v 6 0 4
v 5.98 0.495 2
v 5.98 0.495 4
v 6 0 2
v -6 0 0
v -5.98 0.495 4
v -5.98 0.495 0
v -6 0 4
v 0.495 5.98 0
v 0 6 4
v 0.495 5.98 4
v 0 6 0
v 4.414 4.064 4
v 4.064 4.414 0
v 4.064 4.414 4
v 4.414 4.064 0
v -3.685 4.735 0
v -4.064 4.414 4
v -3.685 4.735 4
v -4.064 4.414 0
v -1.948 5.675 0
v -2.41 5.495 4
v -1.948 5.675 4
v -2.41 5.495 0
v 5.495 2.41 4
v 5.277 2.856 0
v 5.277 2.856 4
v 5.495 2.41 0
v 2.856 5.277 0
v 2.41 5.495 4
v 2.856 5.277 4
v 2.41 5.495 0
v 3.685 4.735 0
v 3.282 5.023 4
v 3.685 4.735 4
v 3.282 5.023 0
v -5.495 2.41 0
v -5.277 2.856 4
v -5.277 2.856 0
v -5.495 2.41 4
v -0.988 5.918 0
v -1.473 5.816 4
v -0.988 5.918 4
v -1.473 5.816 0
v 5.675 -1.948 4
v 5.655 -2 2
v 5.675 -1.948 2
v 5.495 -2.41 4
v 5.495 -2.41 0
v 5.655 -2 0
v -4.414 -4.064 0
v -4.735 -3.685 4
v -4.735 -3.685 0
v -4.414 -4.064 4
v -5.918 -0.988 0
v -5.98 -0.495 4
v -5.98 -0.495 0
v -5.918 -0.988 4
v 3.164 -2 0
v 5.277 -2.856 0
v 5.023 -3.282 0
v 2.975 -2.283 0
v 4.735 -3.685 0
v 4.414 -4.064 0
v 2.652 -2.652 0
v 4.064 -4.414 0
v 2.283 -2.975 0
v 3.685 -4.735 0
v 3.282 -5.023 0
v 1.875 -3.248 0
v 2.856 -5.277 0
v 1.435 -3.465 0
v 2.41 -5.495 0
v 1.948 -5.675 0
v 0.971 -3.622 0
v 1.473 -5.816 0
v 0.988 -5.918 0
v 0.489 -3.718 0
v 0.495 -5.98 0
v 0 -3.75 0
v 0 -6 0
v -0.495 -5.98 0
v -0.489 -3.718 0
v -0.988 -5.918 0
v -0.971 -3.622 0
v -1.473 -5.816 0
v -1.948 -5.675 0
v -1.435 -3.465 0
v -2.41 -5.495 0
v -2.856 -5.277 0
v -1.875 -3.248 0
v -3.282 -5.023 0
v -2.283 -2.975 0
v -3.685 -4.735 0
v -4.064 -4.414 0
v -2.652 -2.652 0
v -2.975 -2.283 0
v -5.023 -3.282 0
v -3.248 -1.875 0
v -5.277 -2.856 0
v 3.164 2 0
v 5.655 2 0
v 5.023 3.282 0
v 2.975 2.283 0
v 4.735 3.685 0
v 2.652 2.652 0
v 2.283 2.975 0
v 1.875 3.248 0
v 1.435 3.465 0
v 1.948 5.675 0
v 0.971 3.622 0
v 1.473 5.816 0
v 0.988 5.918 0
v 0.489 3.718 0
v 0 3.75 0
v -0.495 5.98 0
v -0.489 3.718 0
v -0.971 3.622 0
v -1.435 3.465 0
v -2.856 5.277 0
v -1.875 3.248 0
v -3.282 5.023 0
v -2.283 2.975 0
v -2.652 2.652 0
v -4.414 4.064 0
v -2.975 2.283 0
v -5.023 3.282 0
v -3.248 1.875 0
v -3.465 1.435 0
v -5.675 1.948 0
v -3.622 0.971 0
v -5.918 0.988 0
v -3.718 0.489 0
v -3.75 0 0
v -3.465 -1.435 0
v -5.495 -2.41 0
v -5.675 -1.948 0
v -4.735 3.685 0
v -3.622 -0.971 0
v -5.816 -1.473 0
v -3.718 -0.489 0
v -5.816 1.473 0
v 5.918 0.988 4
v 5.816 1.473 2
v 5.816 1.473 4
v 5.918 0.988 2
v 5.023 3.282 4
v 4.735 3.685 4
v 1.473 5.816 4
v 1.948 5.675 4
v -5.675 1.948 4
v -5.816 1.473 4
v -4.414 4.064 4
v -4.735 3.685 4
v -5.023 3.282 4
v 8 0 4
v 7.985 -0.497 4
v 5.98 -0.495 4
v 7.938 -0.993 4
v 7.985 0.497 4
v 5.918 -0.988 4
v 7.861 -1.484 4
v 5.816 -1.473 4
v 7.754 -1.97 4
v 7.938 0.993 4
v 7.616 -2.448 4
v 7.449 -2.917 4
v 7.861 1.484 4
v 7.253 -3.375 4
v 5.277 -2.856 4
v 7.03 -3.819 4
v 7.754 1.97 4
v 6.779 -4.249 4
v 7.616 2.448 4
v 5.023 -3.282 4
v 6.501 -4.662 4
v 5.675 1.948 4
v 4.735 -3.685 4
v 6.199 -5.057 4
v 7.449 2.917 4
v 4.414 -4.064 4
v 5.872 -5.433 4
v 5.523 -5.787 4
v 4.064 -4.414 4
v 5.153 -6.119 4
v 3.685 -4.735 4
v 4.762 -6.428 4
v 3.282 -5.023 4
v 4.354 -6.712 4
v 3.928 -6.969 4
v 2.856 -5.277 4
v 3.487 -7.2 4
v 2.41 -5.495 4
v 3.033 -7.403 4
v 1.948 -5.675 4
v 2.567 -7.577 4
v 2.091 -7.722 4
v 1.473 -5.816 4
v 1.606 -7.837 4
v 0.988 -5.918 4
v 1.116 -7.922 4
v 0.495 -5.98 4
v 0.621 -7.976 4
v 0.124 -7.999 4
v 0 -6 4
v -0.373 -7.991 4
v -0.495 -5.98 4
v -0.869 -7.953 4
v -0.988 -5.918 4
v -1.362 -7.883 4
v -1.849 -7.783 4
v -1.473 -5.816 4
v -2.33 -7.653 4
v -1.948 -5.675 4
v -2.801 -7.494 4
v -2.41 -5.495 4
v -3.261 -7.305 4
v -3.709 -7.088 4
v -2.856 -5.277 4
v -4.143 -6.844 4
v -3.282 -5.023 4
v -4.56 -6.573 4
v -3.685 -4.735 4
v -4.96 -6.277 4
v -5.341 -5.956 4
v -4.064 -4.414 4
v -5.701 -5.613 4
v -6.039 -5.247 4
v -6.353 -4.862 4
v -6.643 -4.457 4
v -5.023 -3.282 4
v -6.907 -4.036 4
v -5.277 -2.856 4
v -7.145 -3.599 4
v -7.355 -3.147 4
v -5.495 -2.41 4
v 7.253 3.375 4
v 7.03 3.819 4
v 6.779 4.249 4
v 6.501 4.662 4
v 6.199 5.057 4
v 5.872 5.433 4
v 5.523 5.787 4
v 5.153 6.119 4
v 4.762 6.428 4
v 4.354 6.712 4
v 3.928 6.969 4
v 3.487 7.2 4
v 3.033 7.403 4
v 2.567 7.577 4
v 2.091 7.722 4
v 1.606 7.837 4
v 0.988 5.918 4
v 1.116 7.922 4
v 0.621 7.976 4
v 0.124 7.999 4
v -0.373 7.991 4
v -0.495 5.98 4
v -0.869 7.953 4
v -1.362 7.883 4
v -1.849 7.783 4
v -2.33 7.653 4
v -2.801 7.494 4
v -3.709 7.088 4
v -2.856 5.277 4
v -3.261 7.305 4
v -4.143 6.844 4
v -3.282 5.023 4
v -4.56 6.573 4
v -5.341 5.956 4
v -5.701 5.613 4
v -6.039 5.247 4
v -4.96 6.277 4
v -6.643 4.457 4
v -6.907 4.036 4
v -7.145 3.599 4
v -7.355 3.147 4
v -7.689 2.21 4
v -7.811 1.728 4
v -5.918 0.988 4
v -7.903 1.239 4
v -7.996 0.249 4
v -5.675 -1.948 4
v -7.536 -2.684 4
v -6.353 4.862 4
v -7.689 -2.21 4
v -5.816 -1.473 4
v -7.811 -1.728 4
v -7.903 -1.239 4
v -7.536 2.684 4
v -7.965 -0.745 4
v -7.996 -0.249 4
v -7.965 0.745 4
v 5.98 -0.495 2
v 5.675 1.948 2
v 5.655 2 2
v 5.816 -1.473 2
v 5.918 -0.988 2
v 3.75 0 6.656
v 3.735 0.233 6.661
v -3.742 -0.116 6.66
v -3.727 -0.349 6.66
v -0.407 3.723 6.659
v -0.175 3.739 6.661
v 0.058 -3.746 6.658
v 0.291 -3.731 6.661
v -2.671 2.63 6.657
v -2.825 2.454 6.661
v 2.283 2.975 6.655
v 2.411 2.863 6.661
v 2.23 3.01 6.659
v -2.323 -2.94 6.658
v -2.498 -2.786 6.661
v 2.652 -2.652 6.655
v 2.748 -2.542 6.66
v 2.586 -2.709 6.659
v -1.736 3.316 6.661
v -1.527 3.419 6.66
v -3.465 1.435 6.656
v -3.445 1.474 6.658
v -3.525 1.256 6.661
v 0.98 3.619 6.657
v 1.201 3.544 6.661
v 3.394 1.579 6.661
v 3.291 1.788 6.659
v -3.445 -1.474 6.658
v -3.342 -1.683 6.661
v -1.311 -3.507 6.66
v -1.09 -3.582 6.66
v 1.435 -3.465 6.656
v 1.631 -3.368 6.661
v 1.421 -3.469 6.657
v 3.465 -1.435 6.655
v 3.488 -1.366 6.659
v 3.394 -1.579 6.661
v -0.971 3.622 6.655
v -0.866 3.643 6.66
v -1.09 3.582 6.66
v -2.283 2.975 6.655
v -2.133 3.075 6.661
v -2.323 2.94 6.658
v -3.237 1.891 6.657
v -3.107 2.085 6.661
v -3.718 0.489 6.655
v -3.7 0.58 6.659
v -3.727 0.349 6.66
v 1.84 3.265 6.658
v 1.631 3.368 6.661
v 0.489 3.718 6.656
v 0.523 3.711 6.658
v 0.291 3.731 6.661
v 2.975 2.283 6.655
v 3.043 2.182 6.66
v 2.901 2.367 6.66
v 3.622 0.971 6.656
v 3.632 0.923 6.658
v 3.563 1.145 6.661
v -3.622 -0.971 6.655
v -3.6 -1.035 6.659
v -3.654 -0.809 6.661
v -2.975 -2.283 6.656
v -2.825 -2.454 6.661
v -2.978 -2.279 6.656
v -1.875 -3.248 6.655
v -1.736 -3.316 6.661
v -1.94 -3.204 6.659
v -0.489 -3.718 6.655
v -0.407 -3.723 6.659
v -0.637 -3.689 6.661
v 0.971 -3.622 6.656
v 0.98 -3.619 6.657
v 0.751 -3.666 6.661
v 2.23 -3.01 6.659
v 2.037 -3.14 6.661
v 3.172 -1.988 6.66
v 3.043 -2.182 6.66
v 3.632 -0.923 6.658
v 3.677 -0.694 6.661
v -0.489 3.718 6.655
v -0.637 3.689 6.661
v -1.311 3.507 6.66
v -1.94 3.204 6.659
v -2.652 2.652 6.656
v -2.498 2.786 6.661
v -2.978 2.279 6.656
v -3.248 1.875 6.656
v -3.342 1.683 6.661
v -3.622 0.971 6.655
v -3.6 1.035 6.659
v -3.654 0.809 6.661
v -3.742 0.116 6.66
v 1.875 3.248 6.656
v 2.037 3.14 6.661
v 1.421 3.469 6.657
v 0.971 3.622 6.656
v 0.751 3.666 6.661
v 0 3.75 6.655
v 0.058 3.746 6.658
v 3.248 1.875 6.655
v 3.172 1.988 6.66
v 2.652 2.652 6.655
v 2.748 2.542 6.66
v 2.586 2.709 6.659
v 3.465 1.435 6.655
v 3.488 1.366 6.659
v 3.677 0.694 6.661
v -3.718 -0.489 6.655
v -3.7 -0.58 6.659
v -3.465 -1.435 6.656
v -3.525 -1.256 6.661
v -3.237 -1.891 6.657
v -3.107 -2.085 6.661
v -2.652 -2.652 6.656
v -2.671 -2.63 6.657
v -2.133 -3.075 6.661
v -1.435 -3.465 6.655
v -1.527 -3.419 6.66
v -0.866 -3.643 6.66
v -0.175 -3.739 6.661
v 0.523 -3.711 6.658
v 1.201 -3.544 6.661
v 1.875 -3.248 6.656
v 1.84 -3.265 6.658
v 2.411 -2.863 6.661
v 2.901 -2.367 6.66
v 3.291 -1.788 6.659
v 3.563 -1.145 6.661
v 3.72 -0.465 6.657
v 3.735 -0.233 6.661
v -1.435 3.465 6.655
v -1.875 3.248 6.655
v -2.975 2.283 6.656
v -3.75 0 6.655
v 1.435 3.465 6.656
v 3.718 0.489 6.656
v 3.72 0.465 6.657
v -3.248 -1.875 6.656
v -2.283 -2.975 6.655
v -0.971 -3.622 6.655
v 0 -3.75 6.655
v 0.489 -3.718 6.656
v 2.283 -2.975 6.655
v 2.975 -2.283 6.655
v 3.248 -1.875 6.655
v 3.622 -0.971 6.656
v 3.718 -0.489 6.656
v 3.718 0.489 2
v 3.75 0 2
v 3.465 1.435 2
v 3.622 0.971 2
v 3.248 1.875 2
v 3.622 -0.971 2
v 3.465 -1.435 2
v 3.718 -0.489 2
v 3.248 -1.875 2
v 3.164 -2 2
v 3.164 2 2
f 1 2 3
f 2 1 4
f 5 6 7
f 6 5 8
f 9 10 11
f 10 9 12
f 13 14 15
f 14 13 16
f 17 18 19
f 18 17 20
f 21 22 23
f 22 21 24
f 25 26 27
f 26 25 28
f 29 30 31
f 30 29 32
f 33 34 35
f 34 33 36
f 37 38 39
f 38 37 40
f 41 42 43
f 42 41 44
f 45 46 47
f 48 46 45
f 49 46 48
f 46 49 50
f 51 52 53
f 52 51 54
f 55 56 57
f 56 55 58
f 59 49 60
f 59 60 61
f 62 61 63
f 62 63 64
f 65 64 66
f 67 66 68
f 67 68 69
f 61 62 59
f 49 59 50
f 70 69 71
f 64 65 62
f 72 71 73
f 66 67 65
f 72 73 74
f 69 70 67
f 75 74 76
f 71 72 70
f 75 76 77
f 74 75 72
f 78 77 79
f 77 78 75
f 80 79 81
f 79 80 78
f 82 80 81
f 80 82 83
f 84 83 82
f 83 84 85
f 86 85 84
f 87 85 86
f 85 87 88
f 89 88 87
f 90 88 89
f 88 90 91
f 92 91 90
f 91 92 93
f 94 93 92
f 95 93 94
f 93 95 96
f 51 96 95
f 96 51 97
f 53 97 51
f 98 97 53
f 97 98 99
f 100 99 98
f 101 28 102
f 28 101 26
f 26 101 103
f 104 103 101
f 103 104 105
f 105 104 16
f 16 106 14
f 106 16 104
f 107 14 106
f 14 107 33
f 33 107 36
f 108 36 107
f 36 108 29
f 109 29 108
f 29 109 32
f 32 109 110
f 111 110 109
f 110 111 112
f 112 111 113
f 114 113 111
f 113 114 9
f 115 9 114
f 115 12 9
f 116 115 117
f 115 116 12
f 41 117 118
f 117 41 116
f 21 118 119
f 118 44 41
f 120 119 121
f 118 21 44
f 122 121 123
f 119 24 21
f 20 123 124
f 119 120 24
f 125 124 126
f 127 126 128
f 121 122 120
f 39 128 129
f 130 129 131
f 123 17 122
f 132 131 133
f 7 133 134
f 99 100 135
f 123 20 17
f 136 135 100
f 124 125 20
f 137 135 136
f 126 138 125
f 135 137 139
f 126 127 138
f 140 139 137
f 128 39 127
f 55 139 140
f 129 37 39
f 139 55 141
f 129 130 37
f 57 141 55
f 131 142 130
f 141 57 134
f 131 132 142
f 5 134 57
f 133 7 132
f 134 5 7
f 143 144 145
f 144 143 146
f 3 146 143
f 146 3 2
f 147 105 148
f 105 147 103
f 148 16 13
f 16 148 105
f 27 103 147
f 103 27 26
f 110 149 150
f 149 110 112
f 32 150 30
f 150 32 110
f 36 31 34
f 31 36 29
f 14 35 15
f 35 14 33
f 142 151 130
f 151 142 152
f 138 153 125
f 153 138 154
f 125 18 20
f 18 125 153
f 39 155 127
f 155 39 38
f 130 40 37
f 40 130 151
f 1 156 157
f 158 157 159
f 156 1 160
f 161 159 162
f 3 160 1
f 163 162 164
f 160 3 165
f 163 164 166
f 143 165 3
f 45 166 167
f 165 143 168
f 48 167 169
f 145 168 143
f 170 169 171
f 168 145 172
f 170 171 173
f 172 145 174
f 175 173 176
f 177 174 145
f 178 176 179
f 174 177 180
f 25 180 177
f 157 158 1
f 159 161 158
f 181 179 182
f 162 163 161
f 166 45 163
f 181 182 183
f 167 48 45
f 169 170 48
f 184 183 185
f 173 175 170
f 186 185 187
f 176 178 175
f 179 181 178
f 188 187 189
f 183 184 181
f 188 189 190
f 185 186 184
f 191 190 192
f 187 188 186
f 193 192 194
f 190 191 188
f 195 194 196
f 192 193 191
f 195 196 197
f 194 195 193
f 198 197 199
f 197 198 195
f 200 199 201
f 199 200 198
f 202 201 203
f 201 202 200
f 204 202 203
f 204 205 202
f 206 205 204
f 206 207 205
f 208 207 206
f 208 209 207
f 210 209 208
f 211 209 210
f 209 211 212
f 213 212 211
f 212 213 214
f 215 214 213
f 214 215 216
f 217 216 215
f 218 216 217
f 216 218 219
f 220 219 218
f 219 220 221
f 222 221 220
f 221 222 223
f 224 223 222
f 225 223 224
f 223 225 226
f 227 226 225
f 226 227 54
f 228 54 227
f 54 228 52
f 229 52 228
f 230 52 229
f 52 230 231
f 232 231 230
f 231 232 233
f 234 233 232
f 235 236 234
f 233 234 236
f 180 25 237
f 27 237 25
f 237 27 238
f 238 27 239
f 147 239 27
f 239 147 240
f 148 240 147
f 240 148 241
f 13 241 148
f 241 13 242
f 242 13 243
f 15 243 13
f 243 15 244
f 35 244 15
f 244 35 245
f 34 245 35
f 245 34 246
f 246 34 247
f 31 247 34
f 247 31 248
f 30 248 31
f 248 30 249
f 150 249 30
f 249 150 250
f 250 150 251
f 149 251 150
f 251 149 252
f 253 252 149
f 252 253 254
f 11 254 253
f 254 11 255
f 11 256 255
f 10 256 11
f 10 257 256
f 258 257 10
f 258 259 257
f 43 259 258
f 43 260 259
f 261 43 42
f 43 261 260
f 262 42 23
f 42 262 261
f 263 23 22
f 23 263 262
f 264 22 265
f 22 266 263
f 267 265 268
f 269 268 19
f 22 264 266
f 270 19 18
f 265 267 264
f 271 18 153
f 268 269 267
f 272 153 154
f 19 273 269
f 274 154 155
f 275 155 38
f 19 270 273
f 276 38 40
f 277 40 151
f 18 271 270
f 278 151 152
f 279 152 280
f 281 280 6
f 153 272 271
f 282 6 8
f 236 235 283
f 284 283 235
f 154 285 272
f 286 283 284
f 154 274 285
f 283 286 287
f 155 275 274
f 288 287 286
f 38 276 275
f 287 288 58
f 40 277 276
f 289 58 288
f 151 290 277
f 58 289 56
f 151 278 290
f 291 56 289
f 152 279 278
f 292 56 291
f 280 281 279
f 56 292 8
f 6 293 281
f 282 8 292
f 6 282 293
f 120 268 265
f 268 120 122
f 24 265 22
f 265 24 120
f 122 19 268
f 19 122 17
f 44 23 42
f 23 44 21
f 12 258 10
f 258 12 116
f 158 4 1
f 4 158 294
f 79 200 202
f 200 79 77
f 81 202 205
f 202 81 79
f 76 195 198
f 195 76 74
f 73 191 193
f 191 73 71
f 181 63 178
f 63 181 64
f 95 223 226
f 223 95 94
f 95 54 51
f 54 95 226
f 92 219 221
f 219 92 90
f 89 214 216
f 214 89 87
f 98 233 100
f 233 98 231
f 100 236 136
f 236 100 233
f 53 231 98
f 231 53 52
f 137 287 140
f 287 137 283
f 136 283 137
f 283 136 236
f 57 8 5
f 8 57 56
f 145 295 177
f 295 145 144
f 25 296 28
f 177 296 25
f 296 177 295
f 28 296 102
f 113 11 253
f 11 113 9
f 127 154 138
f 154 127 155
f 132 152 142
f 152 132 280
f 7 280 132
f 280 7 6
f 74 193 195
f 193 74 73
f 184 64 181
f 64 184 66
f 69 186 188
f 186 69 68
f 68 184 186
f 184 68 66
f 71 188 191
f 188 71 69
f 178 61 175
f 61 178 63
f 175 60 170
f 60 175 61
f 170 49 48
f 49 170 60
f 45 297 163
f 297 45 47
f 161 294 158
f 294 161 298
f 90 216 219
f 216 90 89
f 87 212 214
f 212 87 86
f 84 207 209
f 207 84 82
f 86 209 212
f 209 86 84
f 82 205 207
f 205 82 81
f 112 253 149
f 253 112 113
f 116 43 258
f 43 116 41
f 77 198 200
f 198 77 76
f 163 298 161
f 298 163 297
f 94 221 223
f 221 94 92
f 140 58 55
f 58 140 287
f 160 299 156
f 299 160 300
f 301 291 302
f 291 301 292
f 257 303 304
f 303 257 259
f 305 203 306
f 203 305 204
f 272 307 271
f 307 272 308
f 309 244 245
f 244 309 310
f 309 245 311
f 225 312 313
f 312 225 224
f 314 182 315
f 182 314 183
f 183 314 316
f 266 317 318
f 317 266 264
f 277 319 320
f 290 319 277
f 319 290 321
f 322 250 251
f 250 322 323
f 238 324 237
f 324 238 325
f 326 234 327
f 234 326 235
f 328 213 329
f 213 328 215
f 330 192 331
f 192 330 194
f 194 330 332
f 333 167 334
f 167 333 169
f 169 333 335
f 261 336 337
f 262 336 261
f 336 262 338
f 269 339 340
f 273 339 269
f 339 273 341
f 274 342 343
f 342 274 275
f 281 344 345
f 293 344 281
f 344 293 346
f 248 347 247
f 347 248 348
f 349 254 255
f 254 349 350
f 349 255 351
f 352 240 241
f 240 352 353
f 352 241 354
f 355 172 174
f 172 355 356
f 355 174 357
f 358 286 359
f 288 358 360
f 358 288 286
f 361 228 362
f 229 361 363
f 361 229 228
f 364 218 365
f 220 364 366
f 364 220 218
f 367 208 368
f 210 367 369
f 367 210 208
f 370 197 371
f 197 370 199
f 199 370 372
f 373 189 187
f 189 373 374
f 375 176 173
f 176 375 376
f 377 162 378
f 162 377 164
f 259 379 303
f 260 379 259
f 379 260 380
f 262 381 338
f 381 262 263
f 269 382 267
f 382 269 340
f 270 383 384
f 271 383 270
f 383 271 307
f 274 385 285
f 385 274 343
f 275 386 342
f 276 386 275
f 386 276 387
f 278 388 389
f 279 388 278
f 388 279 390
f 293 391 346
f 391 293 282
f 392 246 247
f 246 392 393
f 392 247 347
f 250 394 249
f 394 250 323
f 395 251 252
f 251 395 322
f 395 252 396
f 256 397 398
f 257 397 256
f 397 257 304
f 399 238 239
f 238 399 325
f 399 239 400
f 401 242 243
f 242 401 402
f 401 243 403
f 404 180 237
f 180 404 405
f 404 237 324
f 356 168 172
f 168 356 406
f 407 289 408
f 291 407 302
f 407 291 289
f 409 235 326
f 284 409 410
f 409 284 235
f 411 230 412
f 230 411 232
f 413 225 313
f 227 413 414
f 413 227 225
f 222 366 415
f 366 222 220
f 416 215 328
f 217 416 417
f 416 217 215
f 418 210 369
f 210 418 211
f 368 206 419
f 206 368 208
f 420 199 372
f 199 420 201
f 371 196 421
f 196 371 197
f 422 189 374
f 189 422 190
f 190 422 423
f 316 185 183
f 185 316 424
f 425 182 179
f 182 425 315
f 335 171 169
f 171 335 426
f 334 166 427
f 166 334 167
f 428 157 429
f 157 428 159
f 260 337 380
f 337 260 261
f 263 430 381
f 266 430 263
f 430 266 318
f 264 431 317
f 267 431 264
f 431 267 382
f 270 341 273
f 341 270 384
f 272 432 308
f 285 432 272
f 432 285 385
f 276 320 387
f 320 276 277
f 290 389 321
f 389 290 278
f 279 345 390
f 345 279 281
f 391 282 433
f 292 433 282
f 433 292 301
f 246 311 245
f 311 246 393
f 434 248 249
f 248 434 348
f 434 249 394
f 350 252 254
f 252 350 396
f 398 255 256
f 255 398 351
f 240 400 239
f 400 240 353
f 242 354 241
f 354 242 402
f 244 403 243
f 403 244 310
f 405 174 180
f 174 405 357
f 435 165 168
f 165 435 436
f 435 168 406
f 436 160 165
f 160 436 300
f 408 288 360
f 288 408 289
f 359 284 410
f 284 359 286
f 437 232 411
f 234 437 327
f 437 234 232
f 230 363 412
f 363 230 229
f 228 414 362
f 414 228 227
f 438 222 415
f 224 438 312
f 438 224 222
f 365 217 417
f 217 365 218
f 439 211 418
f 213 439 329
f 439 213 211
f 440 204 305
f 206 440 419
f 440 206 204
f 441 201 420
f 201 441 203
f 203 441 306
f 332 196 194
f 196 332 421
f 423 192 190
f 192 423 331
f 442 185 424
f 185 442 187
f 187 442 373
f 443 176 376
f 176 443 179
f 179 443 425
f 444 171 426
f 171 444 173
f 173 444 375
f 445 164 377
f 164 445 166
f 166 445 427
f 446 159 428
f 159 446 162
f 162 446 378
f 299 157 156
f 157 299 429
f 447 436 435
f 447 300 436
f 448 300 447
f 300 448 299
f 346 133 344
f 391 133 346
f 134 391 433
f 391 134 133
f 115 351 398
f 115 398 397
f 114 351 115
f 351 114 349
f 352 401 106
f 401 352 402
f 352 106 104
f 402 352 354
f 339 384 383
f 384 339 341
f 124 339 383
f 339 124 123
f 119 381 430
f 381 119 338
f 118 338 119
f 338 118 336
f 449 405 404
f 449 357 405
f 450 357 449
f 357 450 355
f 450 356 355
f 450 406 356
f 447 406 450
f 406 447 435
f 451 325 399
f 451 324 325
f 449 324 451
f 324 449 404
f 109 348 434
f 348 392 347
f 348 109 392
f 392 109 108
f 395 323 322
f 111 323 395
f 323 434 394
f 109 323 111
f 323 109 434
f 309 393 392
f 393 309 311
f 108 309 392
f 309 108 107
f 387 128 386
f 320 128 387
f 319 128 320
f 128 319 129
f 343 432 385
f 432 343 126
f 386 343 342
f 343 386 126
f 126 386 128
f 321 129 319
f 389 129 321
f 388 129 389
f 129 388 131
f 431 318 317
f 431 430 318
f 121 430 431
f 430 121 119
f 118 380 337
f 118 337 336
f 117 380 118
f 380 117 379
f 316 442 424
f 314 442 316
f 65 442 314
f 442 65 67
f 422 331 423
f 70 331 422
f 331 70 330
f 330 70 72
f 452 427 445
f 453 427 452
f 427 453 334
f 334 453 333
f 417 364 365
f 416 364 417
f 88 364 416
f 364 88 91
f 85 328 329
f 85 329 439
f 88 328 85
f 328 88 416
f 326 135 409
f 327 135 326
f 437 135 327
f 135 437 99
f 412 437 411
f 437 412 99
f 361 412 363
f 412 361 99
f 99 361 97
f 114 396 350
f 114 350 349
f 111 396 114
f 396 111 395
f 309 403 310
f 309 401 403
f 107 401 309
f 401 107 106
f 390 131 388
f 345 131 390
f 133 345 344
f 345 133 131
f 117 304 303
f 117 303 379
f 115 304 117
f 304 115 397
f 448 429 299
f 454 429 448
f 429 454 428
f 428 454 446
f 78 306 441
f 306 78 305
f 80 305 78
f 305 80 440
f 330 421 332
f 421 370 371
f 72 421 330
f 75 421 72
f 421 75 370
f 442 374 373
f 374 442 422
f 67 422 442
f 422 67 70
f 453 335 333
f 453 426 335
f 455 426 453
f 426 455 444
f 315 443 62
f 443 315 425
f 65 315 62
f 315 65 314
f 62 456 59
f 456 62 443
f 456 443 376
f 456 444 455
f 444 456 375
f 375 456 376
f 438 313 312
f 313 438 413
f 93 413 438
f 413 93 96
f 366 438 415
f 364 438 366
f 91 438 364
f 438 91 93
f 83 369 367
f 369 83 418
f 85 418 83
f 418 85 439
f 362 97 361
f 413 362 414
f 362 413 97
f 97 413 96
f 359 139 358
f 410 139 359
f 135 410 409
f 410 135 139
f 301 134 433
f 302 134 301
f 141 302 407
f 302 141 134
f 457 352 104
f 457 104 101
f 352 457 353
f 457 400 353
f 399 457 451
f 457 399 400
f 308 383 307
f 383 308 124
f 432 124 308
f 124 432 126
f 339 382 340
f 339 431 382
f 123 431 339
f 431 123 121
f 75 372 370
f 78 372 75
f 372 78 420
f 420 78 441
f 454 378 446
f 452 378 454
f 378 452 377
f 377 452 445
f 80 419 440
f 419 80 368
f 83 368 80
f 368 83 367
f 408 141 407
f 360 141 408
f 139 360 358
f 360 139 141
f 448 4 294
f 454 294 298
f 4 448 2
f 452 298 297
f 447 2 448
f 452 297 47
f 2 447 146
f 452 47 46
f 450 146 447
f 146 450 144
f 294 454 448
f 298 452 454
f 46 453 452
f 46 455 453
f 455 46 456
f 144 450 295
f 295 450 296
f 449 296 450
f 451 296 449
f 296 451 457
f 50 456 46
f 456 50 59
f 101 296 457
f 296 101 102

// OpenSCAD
 
 centralCylinderHeight = 20;
 centralCylinderRadius = 3.75;
 
 outerCylinderHeight = 4;
 outerCylinderRadius = 6;
 
 coneCylinderHeight = 5;
 coneOuterCylinderRadius = 8; 
 
 $fa = 1; $fs = $preview ? 2 : 0.5;
 
 difference() {
 union() {
   cylinder(h=outerCylinderHeight, r=outerCylinderRadius , center=false);
     translate([0,0,outerCylinderHeight])
   cylinder(h=coneCylinderHeight, r1=coneOuterCylinderRadius, r2=0, center=false);

   
 }
    translate([0,0,-1])
        cylinder(h=centralCylinderHeight, r=centralCylinderRadius , center=false);
 
    // Square hole prints badly
 
    //translate([-2.55,-2.55,-1])
    //cube([5.5,5.5,30],false);
 
      translate([0,-2.0,-1])
     cube([10,4,3],false);
 }
